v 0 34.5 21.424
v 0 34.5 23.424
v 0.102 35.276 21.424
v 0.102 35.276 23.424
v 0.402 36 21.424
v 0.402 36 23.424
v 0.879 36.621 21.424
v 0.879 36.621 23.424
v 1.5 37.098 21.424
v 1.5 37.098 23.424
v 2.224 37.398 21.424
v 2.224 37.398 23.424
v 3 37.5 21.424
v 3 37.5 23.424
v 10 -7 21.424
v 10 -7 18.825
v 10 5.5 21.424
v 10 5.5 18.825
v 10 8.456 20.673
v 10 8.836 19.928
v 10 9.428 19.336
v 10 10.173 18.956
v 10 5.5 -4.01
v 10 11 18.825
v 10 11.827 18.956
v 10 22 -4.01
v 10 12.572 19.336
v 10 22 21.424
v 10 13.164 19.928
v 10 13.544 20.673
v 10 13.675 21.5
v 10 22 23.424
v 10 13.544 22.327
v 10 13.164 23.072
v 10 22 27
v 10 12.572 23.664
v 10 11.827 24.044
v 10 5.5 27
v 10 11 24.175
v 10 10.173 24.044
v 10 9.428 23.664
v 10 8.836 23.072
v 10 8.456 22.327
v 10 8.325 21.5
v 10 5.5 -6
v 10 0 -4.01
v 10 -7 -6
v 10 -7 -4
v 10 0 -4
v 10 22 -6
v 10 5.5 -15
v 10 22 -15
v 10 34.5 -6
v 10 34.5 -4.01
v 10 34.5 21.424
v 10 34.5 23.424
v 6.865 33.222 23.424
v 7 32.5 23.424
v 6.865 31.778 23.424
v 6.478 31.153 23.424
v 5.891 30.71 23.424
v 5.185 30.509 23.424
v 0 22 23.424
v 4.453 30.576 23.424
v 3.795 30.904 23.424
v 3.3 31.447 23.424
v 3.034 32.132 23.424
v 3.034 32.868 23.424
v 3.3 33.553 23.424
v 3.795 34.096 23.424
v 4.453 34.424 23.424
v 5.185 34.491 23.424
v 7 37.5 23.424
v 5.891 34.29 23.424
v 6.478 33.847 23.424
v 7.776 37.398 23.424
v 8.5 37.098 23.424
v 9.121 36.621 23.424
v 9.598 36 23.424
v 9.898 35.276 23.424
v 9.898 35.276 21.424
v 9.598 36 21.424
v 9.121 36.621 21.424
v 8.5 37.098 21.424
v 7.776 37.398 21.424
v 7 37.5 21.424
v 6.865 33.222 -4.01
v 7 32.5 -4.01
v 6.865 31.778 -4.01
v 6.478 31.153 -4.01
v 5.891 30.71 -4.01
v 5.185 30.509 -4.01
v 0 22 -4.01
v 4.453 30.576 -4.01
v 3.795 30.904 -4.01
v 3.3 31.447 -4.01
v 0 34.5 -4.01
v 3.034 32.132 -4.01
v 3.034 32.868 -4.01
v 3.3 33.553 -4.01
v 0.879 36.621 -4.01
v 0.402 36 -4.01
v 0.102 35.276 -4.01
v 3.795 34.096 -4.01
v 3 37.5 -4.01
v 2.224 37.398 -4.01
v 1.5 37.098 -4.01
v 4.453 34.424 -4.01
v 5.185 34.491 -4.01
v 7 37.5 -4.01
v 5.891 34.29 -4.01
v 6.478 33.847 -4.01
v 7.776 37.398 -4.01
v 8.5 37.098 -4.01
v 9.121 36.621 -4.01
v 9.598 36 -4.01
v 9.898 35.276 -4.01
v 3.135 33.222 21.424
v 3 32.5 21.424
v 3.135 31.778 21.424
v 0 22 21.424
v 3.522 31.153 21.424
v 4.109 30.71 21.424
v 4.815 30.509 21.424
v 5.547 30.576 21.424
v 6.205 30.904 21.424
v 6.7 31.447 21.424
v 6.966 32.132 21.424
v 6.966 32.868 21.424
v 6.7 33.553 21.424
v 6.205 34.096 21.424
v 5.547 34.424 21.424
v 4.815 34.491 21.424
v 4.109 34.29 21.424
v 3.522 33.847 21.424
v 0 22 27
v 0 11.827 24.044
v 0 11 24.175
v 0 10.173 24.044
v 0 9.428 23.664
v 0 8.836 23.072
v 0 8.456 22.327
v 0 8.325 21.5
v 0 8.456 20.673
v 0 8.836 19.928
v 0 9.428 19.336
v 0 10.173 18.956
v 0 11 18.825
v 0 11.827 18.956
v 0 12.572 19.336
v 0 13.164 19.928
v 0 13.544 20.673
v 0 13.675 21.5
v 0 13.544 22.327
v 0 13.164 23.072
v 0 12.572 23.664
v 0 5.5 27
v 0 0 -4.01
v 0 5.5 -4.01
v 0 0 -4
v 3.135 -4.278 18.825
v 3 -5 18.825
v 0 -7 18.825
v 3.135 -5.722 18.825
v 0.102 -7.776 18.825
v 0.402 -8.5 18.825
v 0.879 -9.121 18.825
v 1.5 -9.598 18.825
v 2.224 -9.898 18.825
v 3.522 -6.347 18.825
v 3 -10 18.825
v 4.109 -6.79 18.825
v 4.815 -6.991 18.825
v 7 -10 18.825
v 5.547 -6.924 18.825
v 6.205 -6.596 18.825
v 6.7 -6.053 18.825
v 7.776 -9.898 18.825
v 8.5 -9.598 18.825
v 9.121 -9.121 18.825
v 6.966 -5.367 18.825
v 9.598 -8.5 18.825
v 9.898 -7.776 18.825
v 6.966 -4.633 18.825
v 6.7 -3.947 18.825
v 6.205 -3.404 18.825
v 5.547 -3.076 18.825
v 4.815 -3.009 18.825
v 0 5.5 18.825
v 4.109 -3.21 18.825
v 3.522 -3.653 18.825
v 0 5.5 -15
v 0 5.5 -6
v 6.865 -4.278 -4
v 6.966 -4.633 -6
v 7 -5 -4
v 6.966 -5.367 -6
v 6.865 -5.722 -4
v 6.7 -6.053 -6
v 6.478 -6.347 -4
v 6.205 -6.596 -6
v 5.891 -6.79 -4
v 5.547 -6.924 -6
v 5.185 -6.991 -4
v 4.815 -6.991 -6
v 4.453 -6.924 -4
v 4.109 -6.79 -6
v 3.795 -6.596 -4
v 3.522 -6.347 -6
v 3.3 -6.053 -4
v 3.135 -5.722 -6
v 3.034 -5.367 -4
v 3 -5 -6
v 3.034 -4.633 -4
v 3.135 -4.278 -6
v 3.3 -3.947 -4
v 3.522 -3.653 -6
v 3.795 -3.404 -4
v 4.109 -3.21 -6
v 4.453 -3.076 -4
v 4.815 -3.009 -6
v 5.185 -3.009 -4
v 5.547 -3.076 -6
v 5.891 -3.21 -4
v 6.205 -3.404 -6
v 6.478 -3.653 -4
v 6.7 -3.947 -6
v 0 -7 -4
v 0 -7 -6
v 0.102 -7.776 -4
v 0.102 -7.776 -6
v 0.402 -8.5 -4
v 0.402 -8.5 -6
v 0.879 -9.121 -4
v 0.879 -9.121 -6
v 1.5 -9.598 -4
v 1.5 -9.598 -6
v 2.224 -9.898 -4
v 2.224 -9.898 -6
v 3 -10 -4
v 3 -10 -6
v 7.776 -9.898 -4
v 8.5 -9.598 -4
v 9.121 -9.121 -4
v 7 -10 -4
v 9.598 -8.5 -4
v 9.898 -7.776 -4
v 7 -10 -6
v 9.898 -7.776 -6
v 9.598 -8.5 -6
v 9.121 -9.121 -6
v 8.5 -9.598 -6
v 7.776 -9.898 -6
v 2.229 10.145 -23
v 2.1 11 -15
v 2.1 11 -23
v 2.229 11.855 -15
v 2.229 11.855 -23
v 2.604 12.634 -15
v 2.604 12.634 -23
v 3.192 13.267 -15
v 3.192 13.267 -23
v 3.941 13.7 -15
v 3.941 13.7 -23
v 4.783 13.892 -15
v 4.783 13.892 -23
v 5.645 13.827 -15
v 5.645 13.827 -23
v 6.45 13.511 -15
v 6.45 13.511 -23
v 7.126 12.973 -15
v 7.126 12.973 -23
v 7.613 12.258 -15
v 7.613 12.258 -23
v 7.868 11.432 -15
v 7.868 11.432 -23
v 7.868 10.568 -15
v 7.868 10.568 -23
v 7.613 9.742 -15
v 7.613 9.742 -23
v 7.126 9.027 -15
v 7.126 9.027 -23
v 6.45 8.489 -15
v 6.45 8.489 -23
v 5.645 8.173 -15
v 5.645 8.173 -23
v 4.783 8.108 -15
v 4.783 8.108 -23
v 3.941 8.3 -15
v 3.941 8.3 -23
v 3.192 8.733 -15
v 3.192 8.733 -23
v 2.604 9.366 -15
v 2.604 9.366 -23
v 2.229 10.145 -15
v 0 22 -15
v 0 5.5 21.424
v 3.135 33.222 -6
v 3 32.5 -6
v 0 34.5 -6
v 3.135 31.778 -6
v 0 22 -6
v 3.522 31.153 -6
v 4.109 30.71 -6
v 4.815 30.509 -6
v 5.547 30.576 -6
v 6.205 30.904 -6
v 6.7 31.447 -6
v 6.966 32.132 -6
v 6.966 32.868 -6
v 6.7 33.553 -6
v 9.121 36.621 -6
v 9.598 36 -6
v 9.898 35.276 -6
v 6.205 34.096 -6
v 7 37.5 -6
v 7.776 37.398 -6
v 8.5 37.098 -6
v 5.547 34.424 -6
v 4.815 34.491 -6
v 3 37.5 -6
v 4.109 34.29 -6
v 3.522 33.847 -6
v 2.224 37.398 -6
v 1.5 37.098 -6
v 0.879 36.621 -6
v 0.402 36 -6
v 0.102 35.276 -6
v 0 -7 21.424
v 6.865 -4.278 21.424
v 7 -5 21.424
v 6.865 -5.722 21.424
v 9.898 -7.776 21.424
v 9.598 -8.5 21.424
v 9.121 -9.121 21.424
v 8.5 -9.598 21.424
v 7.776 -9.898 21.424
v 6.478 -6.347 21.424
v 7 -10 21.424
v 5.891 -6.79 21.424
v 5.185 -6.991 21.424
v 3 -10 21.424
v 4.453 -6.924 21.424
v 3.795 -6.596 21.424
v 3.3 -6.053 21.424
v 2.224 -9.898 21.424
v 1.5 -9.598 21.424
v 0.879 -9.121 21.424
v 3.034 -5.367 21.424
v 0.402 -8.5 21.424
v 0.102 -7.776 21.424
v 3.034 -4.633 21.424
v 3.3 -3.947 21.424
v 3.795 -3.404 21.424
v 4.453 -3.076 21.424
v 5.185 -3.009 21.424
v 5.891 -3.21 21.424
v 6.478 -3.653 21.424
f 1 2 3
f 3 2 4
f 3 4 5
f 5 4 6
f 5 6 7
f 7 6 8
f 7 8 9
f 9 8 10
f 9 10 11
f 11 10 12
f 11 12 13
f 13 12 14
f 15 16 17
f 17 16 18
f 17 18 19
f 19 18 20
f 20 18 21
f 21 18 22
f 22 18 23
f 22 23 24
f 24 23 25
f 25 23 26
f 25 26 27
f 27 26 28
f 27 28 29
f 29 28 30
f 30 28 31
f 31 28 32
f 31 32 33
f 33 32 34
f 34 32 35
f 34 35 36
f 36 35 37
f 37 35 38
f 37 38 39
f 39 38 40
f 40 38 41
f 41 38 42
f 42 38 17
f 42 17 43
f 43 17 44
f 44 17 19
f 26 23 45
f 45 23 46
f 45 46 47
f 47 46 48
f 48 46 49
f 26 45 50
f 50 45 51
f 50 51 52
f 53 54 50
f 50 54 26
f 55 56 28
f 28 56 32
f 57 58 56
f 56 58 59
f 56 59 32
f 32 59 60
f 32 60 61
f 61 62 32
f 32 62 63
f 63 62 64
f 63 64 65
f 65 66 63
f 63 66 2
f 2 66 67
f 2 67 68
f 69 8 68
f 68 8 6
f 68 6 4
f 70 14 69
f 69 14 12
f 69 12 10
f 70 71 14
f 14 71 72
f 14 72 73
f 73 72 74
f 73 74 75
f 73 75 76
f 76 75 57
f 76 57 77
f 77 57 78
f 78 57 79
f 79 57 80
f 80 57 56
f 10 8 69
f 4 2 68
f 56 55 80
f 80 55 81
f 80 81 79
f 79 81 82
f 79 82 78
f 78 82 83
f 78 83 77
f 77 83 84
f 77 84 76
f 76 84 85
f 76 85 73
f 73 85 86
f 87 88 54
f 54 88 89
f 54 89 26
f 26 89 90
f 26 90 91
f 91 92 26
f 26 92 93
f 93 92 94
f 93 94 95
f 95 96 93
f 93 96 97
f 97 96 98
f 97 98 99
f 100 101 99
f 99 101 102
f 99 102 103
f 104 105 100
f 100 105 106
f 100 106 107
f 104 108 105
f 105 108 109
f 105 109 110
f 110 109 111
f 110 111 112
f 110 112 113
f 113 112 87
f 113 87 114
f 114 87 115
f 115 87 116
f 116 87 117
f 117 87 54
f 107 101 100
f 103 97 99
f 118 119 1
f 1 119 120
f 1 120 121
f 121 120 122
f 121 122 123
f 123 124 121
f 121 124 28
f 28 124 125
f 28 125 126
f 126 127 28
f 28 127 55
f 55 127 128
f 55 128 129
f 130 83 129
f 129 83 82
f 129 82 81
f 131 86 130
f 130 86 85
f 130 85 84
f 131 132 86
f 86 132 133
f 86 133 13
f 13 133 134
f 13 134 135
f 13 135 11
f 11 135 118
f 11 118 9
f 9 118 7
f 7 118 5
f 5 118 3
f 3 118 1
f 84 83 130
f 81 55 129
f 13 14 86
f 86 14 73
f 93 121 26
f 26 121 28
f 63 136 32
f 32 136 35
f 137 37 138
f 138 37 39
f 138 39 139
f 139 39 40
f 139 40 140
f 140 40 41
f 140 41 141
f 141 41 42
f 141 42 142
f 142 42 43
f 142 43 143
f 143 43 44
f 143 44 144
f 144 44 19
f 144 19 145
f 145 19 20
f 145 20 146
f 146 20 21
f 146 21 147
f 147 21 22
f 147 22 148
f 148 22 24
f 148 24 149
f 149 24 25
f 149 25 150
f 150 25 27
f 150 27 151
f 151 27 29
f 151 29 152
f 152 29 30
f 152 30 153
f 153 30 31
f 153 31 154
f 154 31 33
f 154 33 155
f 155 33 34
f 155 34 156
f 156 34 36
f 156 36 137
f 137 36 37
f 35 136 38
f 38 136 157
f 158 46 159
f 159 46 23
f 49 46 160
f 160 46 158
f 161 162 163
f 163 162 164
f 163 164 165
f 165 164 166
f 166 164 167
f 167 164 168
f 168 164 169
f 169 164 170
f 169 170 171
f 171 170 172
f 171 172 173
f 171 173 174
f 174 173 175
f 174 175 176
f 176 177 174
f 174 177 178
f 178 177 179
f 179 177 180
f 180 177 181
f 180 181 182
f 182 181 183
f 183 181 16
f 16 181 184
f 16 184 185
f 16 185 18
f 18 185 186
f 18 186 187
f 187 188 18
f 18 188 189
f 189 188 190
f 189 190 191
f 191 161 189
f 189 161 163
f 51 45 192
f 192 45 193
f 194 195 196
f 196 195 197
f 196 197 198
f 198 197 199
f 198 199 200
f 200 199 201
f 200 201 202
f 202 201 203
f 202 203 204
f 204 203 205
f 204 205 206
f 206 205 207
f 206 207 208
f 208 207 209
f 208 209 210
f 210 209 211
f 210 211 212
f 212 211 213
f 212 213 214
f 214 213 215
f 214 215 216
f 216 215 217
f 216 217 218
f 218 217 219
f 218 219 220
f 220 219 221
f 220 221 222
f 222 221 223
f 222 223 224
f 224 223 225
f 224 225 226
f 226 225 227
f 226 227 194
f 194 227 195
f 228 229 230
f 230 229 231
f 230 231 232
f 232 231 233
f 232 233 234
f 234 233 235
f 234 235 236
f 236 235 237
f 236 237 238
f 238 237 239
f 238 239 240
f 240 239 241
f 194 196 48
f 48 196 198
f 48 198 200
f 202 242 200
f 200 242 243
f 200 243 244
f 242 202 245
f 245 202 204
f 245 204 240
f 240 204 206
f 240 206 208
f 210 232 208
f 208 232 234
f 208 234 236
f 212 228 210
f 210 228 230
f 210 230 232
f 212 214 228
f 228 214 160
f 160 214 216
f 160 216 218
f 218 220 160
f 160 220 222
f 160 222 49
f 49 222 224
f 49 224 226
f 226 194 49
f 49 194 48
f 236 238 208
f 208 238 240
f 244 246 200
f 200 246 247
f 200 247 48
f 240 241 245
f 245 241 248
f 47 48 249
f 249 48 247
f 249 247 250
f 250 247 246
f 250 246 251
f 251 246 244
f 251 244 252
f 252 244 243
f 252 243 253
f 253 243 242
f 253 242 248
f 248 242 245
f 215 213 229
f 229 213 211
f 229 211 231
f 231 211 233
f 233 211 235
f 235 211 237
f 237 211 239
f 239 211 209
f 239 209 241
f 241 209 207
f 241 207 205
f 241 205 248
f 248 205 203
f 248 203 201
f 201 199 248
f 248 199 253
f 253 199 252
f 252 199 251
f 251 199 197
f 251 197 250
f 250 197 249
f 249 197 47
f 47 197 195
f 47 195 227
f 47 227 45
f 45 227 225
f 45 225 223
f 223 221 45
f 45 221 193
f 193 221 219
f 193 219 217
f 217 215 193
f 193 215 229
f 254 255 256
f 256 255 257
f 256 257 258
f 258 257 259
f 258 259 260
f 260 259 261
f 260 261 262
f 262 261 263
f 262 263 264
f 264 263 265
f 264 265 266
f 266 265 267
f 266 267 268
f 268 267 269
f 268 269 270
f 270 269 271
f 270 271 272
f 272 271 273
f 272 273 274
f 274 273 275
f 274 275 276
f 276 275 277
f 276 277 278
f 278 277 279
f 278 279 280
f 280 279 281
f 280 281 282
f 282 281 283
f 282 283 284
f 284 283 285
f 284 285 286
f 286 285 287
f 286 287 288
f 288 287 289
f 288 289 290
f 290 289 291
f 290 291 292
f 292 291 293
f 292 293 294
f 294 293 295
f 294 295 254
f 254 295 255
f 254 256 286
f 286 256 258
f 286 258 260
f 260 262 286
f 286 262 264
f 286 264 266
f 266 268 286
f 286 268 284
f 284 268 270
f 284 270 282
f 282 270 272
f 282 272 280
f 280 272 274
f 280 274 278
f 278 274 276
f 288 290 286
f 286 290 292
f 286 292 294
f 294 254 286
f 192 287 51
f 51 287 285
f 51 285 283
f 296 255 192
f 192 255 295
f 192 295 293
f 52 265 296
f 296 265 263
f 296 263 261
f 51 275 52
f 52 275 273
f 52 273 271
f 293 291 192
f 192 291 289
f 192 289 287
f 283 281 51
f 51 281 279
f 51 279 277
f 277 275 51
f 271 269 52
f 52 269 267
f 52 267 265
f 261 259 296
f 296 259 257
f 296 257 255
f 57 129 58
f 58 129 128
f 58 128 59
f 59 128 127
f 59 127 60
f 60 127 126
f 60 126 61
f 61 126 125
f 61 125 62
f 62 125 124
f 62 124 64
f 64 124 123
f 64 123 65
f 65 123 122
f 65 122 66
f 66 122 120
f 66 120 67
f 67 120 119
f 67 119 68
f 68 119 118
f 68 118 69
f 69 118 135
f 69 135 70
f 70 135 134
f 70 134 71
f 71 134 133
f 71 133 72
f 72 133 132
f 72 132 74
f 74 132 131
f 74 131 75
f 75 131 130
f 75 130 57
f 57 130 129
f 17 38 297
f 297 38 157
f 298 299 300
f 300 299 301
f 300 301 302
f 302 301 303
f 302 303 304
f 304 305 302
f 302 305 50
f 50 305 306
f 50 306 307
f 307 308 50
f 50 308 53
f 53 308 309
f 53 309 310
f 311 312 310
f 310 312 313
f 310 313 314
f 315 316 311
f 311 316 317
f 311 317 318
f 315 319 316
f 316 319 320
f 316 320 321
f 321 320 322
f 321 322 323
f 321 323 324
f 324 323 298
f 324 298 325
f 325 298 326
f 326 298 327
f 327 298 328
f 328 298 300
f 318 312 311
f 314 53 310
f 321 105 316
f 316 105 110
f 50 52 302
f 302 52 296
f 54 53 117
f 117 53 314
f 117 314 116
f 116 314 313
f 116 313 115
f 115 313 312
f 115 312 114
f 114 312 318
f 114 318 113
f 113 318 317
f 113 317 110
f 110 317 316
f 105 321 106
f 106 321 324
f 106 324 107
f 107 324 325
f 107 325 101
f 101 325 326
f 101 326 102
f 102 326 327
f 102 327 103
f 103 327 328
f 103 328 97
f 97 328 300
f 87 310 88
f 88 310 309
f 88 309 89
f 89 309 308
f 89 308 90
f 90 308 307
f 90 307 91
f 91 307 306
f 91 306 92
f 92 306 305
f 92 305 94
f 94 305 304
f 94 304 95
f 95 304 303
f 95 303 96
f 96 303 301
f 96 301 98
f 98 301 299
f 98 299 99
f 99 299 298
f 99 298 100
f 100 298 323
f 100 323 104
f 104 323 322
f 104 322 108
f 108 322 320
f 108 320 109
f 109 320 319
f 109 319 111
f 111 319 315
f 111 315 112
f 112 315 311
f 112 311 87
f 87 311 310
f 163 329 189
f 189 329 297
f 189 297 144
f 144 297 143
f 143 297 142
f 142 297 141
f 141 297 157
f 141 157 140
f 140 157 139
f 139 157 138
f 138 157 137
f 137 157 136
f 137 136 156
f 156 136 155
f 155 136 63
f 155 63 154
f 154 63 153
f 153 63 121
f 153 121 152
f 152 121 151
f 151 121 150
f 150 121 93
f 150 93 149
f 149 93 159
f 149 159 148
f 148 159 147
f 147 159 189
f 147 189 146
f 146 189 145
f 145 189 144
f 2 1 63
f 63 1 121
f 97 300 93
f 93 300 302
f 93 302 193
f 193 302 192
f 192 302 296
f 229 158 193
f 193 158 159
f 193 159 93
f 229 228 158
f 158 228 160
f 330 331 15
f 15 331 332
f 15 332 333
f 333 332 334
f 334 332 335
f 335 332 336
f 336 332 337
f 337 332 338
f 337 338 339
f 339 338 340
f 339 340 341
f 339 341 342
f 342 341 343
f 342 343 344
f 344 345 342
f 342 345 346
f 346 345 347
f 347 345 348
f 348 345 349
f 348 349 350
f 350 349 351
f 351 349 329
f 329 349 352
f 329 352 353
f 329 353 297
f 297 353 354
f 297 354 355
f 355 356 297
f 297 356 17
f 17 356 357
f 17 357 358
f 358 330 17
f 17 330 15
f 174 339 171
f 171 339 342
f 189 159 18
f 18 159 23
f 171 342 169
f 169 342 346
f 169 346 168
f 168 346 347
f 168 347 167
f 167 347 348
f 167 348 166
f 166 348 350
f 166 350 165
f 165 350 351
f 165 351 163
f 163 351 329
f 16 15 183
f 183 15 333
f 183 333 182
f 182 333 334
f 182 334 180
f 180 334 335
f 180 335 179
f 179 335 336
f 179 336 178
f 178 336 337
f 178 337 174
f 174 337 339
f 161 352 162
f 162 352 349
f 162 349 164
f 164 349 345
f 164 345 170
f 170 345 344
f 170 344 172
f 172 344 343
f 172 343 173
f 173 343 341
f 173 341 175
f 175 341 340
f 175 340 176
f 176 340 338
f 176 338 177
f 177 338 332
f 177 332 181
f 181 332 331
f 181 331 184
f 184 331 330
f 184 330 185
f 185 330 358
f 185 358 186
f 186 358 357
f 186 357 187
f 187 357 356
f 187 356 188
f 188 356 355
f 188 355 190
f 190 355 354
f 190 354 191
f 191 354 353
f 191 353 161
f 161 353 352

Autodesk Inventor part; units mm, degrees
ref_plane "YZ Plane" through (0, 0, 0) normal (1, 0, 0) x (0, 1, 0)
ref_plane "XZ Plane" through (0, 0, 0) normal (0, 1, 0) x (-1, 0, 0)
ref_plane "XY Plane" through (0, 0, 0) normal (0, 0, 1) x (1, 0, 0)
sketch "Sketch1" plane through (0, 0, 0) normal (0, 1, 0) x (-1, 0, 0)
  line L0 (0, 0) -> (0, -15)
  line L1 (0, -15) -> (-10, -15)
  line L2 (-10, -15) -> (-10, 0)
  line L3 (-10, 0) -> (0, 0)
  dimension "d0" = 15
  dimension "d1" = 10
extrude "Extrusion1" add sketch "Sketch1" along normal blind 22
sketch "Sketch3" plane through (10, 0, -15) normal (0, 0, -1) x (-1, 0, 0)
  line L0 (0, 0) -> (0, 22) projected
  line L1 (0, 11) -> (5, 11)
  circle A0 centre (5, 11) radius 2.9
  point P0 (10, 0)
  dimension "d9" = 5
  dimension "d10" = 5.8
extrude "Extrusion3" add sketch "Sketch3" along normal blind 8
sketch "Sketch4" plane through (0, 0, 0) normal (0, -1, 0) x (1, 0, 0)
  line L0 (0, 0) -> (0, -6)
  line L1 (0, -15) -> (0, 0) projected
  line L2 (0, -6) -> (10, -6)
  line L3 (10, -6.8) -> (0, -6.8) projected
  line L4 (10, -6) -> (10, -4)
  line L5 (10, -4) -> (0, -4)
  dimension "d13" = 6
  dimension "d14" = 2
extrude "Extrusion4" add sketch "Sketch4" along normal blind 10
fillet "Fillet1" radius 3 2 edges at (10, -10, -5) (0, -10, -5)
sketch "Sketch5" plane through (10, 0, -6) normal (0, 0, -1) x (-1, 0, 0)
  line L0 (0, 0) -> (5, 0)
  line L1 (0, 0) -> (10, 0) projected
  line L2 (5, 0) -> (5, -5)
  circle A0 centre (5, -5) radius 2
  dimension "d18" = 5
  dimension "d19" = 5
  dimension "d20" = 4
extrude "Extrusion5" cut sketch "Sketch5" against normal blind 10
sketch "Sketch6" plane through (0, 0, 0) normal (0, -1, 0) x (1, 0, 0)
  line L0 (10, -6) -> (10, -15) projected
  line L1 (10, -15) -> (10, -6)
  line L2 (10, -6) -> (0, -6)
  line L3 (0, -6) -> (0, -15)
  line L4 (0, -15) -> (10, -15)
  line L5 (0, 0) -> (10, 0) projected
  line L6 (10, -4.0095) -> (0, -4.0095)
  line L7 (0, -4.0095) -> (0, 0)
  line L8 (0, 0) -> (10, 0)
  line L9 (10, 0) -> (10, -4.0095)
extrude "Extrusion6" cut sketch "Sketch6" against normal blind 5.5
sketch "Sketch7" plane through (0, 22, 0) normal (0, 0, 1) x (1, 0, 0)
  line L0 (10, -16.5) -> (10, 0) projected
  line L1 (10, 0) -> (0, 0)
  line L2 (0, 0) -> (0, -16.5)
  line L3 (0, -16.5) -> (10, -16.5)
  line L4 (10, -16.5) -> (10, 0)
  point P0 (0, -22)
extrude "Extrusion7" add sketch "Sketch7" along normal blind 27
sketch "Sketch8" plane through (10, -7, -4) normal (1, 0, 0) x (0, 0, -1)
  line L0 (11, 29) -> (-31, 29) projected
  line L1 (11, 29) -> (-25.5, 29)
  line L2 (-25.5, 29) -> (-25.5, 18)
  circle A0 centre (-25.5, 18) radius 2.675
  point P0 (-4, 7)
  dimension "d28" = 36.5
  dimension "d29" = 11
  dimension "d30" = 5.35
extrude "Extrusion8" cut sketch "Sketch8" against normal blind 40
sketch "Sketch9" plane through (0, 22, 0) normal (0, 1, 0) x (1, 0, 0)
  line L0 (0, 15) -> (0, -27) projected
  line L1 (10, 15) -> (10, -27) projected
  line L2 (0, -23.4243) -> (10, -23.4243)
  line L3 (10, -23.4243) -> (10, -21.4243)
  line L4 (10, -21.4243) -> (0, -21.4243)
  line L5 (0, -21.4243) -> (0, -23.4243)
  point P0 (0, 0)
  point P1 (0, -21.4243)
  dimension "d33" = 2
extrude "Extrusion9" add sketch "Sketch9" along normal blind 15.5
fillet "Fillet3" radius 3 2 edges at (10, 37.5, 22.4243) (0, 37.5, 22.4243)
sketch "Sketch10" plane through (10, 22, 21.4243) normal (0, 0, -1) x (-1, 0, 0)
  line L0 (7, 15.5) -> (3, 15.5) projected
  line L1 (5, 15.5) -> (5, 10.5)
  circle A0 centre (5, 10.5) radius 2
  point P0 (10, -22)
  dimension "d37" = 5
  dimension "d38" = 4
extrude "Extrusion10" cut sketch "Sketch10" against normal blind 15.5
sketch "Sketch11" plane through (0, 22, 0) normal (0, 1, 0) x (1, 0, 0)
  line L0 (0, 6) -> (10, 6) projected
  line L1 (0, 4.0095) -> (10, 4.0095) projected
  line L2 (0, 6) -> (10, 6)
  line L3 (10, 6) -> (10, 4.0095)
  line L4 (10, 4.0095) -> (0, 4.0095)
  line L5 (0, 4.0095) -> (0, 6)
  point P0 (0, 0)
extrude "Extrusion11" add sketch "Sketch11" along normal blind 15.5
fillet "Fillet4" radius 3 2 edges at (10, 37.5, -5.0048) (0, 37.5, -5.0048)
sketch "Sketch12" plane through (10, 22, -6) normal (0, 0, -1) x (-1, 0, 0)
  circle A0 centre (5, 10.5) radius 2 projected
  circle A1 centre (5, 10.5) radius 2
  point P0 (10, -22)
extrude "Extrusion12" cut sketch "Sketch12" against normal blind 10
sketch "Sketch13" plane through (0, 5.5, 0) normal (0, -1, 0) x (1, 0, 0)
  line L0 (10, 18.825) -> (0, 18.825) projected
  line L1 (0, 21.4243) -> (10, 21.4243) projected
  line L2 (10, 18.825) -> (0, 18.825)
  line L3 (0, 18.825) -> (0, 21.4243)
  line L4 (0, 21.4243) -> (10, 21.4243)
  line L5 (10, 21.4243) -> (10, 18.825)
  point P0 (0, 0)
extrude "Extrusion13" add sketch "Sketch13" along normal blind 15.5
fillet "Fillet5" radius 3 2 edges at (0, -10, 20.1246) (10, -10, 20.1246)
sketch "Sketch14" plane through (0, 5.5, 21.4243) normal (0, 0, 1) x (1, 0, 0)
  circle A0 centre (5, -10.5) radius 2 projected
  circle A1 centre (5, -10.5) radius 2
  point P0 (0, -5.5)
extrude "Extrusion14" cut sketch "Sketch14" against normal blind 15.5
properties part number "DudukanRodaDepan"
